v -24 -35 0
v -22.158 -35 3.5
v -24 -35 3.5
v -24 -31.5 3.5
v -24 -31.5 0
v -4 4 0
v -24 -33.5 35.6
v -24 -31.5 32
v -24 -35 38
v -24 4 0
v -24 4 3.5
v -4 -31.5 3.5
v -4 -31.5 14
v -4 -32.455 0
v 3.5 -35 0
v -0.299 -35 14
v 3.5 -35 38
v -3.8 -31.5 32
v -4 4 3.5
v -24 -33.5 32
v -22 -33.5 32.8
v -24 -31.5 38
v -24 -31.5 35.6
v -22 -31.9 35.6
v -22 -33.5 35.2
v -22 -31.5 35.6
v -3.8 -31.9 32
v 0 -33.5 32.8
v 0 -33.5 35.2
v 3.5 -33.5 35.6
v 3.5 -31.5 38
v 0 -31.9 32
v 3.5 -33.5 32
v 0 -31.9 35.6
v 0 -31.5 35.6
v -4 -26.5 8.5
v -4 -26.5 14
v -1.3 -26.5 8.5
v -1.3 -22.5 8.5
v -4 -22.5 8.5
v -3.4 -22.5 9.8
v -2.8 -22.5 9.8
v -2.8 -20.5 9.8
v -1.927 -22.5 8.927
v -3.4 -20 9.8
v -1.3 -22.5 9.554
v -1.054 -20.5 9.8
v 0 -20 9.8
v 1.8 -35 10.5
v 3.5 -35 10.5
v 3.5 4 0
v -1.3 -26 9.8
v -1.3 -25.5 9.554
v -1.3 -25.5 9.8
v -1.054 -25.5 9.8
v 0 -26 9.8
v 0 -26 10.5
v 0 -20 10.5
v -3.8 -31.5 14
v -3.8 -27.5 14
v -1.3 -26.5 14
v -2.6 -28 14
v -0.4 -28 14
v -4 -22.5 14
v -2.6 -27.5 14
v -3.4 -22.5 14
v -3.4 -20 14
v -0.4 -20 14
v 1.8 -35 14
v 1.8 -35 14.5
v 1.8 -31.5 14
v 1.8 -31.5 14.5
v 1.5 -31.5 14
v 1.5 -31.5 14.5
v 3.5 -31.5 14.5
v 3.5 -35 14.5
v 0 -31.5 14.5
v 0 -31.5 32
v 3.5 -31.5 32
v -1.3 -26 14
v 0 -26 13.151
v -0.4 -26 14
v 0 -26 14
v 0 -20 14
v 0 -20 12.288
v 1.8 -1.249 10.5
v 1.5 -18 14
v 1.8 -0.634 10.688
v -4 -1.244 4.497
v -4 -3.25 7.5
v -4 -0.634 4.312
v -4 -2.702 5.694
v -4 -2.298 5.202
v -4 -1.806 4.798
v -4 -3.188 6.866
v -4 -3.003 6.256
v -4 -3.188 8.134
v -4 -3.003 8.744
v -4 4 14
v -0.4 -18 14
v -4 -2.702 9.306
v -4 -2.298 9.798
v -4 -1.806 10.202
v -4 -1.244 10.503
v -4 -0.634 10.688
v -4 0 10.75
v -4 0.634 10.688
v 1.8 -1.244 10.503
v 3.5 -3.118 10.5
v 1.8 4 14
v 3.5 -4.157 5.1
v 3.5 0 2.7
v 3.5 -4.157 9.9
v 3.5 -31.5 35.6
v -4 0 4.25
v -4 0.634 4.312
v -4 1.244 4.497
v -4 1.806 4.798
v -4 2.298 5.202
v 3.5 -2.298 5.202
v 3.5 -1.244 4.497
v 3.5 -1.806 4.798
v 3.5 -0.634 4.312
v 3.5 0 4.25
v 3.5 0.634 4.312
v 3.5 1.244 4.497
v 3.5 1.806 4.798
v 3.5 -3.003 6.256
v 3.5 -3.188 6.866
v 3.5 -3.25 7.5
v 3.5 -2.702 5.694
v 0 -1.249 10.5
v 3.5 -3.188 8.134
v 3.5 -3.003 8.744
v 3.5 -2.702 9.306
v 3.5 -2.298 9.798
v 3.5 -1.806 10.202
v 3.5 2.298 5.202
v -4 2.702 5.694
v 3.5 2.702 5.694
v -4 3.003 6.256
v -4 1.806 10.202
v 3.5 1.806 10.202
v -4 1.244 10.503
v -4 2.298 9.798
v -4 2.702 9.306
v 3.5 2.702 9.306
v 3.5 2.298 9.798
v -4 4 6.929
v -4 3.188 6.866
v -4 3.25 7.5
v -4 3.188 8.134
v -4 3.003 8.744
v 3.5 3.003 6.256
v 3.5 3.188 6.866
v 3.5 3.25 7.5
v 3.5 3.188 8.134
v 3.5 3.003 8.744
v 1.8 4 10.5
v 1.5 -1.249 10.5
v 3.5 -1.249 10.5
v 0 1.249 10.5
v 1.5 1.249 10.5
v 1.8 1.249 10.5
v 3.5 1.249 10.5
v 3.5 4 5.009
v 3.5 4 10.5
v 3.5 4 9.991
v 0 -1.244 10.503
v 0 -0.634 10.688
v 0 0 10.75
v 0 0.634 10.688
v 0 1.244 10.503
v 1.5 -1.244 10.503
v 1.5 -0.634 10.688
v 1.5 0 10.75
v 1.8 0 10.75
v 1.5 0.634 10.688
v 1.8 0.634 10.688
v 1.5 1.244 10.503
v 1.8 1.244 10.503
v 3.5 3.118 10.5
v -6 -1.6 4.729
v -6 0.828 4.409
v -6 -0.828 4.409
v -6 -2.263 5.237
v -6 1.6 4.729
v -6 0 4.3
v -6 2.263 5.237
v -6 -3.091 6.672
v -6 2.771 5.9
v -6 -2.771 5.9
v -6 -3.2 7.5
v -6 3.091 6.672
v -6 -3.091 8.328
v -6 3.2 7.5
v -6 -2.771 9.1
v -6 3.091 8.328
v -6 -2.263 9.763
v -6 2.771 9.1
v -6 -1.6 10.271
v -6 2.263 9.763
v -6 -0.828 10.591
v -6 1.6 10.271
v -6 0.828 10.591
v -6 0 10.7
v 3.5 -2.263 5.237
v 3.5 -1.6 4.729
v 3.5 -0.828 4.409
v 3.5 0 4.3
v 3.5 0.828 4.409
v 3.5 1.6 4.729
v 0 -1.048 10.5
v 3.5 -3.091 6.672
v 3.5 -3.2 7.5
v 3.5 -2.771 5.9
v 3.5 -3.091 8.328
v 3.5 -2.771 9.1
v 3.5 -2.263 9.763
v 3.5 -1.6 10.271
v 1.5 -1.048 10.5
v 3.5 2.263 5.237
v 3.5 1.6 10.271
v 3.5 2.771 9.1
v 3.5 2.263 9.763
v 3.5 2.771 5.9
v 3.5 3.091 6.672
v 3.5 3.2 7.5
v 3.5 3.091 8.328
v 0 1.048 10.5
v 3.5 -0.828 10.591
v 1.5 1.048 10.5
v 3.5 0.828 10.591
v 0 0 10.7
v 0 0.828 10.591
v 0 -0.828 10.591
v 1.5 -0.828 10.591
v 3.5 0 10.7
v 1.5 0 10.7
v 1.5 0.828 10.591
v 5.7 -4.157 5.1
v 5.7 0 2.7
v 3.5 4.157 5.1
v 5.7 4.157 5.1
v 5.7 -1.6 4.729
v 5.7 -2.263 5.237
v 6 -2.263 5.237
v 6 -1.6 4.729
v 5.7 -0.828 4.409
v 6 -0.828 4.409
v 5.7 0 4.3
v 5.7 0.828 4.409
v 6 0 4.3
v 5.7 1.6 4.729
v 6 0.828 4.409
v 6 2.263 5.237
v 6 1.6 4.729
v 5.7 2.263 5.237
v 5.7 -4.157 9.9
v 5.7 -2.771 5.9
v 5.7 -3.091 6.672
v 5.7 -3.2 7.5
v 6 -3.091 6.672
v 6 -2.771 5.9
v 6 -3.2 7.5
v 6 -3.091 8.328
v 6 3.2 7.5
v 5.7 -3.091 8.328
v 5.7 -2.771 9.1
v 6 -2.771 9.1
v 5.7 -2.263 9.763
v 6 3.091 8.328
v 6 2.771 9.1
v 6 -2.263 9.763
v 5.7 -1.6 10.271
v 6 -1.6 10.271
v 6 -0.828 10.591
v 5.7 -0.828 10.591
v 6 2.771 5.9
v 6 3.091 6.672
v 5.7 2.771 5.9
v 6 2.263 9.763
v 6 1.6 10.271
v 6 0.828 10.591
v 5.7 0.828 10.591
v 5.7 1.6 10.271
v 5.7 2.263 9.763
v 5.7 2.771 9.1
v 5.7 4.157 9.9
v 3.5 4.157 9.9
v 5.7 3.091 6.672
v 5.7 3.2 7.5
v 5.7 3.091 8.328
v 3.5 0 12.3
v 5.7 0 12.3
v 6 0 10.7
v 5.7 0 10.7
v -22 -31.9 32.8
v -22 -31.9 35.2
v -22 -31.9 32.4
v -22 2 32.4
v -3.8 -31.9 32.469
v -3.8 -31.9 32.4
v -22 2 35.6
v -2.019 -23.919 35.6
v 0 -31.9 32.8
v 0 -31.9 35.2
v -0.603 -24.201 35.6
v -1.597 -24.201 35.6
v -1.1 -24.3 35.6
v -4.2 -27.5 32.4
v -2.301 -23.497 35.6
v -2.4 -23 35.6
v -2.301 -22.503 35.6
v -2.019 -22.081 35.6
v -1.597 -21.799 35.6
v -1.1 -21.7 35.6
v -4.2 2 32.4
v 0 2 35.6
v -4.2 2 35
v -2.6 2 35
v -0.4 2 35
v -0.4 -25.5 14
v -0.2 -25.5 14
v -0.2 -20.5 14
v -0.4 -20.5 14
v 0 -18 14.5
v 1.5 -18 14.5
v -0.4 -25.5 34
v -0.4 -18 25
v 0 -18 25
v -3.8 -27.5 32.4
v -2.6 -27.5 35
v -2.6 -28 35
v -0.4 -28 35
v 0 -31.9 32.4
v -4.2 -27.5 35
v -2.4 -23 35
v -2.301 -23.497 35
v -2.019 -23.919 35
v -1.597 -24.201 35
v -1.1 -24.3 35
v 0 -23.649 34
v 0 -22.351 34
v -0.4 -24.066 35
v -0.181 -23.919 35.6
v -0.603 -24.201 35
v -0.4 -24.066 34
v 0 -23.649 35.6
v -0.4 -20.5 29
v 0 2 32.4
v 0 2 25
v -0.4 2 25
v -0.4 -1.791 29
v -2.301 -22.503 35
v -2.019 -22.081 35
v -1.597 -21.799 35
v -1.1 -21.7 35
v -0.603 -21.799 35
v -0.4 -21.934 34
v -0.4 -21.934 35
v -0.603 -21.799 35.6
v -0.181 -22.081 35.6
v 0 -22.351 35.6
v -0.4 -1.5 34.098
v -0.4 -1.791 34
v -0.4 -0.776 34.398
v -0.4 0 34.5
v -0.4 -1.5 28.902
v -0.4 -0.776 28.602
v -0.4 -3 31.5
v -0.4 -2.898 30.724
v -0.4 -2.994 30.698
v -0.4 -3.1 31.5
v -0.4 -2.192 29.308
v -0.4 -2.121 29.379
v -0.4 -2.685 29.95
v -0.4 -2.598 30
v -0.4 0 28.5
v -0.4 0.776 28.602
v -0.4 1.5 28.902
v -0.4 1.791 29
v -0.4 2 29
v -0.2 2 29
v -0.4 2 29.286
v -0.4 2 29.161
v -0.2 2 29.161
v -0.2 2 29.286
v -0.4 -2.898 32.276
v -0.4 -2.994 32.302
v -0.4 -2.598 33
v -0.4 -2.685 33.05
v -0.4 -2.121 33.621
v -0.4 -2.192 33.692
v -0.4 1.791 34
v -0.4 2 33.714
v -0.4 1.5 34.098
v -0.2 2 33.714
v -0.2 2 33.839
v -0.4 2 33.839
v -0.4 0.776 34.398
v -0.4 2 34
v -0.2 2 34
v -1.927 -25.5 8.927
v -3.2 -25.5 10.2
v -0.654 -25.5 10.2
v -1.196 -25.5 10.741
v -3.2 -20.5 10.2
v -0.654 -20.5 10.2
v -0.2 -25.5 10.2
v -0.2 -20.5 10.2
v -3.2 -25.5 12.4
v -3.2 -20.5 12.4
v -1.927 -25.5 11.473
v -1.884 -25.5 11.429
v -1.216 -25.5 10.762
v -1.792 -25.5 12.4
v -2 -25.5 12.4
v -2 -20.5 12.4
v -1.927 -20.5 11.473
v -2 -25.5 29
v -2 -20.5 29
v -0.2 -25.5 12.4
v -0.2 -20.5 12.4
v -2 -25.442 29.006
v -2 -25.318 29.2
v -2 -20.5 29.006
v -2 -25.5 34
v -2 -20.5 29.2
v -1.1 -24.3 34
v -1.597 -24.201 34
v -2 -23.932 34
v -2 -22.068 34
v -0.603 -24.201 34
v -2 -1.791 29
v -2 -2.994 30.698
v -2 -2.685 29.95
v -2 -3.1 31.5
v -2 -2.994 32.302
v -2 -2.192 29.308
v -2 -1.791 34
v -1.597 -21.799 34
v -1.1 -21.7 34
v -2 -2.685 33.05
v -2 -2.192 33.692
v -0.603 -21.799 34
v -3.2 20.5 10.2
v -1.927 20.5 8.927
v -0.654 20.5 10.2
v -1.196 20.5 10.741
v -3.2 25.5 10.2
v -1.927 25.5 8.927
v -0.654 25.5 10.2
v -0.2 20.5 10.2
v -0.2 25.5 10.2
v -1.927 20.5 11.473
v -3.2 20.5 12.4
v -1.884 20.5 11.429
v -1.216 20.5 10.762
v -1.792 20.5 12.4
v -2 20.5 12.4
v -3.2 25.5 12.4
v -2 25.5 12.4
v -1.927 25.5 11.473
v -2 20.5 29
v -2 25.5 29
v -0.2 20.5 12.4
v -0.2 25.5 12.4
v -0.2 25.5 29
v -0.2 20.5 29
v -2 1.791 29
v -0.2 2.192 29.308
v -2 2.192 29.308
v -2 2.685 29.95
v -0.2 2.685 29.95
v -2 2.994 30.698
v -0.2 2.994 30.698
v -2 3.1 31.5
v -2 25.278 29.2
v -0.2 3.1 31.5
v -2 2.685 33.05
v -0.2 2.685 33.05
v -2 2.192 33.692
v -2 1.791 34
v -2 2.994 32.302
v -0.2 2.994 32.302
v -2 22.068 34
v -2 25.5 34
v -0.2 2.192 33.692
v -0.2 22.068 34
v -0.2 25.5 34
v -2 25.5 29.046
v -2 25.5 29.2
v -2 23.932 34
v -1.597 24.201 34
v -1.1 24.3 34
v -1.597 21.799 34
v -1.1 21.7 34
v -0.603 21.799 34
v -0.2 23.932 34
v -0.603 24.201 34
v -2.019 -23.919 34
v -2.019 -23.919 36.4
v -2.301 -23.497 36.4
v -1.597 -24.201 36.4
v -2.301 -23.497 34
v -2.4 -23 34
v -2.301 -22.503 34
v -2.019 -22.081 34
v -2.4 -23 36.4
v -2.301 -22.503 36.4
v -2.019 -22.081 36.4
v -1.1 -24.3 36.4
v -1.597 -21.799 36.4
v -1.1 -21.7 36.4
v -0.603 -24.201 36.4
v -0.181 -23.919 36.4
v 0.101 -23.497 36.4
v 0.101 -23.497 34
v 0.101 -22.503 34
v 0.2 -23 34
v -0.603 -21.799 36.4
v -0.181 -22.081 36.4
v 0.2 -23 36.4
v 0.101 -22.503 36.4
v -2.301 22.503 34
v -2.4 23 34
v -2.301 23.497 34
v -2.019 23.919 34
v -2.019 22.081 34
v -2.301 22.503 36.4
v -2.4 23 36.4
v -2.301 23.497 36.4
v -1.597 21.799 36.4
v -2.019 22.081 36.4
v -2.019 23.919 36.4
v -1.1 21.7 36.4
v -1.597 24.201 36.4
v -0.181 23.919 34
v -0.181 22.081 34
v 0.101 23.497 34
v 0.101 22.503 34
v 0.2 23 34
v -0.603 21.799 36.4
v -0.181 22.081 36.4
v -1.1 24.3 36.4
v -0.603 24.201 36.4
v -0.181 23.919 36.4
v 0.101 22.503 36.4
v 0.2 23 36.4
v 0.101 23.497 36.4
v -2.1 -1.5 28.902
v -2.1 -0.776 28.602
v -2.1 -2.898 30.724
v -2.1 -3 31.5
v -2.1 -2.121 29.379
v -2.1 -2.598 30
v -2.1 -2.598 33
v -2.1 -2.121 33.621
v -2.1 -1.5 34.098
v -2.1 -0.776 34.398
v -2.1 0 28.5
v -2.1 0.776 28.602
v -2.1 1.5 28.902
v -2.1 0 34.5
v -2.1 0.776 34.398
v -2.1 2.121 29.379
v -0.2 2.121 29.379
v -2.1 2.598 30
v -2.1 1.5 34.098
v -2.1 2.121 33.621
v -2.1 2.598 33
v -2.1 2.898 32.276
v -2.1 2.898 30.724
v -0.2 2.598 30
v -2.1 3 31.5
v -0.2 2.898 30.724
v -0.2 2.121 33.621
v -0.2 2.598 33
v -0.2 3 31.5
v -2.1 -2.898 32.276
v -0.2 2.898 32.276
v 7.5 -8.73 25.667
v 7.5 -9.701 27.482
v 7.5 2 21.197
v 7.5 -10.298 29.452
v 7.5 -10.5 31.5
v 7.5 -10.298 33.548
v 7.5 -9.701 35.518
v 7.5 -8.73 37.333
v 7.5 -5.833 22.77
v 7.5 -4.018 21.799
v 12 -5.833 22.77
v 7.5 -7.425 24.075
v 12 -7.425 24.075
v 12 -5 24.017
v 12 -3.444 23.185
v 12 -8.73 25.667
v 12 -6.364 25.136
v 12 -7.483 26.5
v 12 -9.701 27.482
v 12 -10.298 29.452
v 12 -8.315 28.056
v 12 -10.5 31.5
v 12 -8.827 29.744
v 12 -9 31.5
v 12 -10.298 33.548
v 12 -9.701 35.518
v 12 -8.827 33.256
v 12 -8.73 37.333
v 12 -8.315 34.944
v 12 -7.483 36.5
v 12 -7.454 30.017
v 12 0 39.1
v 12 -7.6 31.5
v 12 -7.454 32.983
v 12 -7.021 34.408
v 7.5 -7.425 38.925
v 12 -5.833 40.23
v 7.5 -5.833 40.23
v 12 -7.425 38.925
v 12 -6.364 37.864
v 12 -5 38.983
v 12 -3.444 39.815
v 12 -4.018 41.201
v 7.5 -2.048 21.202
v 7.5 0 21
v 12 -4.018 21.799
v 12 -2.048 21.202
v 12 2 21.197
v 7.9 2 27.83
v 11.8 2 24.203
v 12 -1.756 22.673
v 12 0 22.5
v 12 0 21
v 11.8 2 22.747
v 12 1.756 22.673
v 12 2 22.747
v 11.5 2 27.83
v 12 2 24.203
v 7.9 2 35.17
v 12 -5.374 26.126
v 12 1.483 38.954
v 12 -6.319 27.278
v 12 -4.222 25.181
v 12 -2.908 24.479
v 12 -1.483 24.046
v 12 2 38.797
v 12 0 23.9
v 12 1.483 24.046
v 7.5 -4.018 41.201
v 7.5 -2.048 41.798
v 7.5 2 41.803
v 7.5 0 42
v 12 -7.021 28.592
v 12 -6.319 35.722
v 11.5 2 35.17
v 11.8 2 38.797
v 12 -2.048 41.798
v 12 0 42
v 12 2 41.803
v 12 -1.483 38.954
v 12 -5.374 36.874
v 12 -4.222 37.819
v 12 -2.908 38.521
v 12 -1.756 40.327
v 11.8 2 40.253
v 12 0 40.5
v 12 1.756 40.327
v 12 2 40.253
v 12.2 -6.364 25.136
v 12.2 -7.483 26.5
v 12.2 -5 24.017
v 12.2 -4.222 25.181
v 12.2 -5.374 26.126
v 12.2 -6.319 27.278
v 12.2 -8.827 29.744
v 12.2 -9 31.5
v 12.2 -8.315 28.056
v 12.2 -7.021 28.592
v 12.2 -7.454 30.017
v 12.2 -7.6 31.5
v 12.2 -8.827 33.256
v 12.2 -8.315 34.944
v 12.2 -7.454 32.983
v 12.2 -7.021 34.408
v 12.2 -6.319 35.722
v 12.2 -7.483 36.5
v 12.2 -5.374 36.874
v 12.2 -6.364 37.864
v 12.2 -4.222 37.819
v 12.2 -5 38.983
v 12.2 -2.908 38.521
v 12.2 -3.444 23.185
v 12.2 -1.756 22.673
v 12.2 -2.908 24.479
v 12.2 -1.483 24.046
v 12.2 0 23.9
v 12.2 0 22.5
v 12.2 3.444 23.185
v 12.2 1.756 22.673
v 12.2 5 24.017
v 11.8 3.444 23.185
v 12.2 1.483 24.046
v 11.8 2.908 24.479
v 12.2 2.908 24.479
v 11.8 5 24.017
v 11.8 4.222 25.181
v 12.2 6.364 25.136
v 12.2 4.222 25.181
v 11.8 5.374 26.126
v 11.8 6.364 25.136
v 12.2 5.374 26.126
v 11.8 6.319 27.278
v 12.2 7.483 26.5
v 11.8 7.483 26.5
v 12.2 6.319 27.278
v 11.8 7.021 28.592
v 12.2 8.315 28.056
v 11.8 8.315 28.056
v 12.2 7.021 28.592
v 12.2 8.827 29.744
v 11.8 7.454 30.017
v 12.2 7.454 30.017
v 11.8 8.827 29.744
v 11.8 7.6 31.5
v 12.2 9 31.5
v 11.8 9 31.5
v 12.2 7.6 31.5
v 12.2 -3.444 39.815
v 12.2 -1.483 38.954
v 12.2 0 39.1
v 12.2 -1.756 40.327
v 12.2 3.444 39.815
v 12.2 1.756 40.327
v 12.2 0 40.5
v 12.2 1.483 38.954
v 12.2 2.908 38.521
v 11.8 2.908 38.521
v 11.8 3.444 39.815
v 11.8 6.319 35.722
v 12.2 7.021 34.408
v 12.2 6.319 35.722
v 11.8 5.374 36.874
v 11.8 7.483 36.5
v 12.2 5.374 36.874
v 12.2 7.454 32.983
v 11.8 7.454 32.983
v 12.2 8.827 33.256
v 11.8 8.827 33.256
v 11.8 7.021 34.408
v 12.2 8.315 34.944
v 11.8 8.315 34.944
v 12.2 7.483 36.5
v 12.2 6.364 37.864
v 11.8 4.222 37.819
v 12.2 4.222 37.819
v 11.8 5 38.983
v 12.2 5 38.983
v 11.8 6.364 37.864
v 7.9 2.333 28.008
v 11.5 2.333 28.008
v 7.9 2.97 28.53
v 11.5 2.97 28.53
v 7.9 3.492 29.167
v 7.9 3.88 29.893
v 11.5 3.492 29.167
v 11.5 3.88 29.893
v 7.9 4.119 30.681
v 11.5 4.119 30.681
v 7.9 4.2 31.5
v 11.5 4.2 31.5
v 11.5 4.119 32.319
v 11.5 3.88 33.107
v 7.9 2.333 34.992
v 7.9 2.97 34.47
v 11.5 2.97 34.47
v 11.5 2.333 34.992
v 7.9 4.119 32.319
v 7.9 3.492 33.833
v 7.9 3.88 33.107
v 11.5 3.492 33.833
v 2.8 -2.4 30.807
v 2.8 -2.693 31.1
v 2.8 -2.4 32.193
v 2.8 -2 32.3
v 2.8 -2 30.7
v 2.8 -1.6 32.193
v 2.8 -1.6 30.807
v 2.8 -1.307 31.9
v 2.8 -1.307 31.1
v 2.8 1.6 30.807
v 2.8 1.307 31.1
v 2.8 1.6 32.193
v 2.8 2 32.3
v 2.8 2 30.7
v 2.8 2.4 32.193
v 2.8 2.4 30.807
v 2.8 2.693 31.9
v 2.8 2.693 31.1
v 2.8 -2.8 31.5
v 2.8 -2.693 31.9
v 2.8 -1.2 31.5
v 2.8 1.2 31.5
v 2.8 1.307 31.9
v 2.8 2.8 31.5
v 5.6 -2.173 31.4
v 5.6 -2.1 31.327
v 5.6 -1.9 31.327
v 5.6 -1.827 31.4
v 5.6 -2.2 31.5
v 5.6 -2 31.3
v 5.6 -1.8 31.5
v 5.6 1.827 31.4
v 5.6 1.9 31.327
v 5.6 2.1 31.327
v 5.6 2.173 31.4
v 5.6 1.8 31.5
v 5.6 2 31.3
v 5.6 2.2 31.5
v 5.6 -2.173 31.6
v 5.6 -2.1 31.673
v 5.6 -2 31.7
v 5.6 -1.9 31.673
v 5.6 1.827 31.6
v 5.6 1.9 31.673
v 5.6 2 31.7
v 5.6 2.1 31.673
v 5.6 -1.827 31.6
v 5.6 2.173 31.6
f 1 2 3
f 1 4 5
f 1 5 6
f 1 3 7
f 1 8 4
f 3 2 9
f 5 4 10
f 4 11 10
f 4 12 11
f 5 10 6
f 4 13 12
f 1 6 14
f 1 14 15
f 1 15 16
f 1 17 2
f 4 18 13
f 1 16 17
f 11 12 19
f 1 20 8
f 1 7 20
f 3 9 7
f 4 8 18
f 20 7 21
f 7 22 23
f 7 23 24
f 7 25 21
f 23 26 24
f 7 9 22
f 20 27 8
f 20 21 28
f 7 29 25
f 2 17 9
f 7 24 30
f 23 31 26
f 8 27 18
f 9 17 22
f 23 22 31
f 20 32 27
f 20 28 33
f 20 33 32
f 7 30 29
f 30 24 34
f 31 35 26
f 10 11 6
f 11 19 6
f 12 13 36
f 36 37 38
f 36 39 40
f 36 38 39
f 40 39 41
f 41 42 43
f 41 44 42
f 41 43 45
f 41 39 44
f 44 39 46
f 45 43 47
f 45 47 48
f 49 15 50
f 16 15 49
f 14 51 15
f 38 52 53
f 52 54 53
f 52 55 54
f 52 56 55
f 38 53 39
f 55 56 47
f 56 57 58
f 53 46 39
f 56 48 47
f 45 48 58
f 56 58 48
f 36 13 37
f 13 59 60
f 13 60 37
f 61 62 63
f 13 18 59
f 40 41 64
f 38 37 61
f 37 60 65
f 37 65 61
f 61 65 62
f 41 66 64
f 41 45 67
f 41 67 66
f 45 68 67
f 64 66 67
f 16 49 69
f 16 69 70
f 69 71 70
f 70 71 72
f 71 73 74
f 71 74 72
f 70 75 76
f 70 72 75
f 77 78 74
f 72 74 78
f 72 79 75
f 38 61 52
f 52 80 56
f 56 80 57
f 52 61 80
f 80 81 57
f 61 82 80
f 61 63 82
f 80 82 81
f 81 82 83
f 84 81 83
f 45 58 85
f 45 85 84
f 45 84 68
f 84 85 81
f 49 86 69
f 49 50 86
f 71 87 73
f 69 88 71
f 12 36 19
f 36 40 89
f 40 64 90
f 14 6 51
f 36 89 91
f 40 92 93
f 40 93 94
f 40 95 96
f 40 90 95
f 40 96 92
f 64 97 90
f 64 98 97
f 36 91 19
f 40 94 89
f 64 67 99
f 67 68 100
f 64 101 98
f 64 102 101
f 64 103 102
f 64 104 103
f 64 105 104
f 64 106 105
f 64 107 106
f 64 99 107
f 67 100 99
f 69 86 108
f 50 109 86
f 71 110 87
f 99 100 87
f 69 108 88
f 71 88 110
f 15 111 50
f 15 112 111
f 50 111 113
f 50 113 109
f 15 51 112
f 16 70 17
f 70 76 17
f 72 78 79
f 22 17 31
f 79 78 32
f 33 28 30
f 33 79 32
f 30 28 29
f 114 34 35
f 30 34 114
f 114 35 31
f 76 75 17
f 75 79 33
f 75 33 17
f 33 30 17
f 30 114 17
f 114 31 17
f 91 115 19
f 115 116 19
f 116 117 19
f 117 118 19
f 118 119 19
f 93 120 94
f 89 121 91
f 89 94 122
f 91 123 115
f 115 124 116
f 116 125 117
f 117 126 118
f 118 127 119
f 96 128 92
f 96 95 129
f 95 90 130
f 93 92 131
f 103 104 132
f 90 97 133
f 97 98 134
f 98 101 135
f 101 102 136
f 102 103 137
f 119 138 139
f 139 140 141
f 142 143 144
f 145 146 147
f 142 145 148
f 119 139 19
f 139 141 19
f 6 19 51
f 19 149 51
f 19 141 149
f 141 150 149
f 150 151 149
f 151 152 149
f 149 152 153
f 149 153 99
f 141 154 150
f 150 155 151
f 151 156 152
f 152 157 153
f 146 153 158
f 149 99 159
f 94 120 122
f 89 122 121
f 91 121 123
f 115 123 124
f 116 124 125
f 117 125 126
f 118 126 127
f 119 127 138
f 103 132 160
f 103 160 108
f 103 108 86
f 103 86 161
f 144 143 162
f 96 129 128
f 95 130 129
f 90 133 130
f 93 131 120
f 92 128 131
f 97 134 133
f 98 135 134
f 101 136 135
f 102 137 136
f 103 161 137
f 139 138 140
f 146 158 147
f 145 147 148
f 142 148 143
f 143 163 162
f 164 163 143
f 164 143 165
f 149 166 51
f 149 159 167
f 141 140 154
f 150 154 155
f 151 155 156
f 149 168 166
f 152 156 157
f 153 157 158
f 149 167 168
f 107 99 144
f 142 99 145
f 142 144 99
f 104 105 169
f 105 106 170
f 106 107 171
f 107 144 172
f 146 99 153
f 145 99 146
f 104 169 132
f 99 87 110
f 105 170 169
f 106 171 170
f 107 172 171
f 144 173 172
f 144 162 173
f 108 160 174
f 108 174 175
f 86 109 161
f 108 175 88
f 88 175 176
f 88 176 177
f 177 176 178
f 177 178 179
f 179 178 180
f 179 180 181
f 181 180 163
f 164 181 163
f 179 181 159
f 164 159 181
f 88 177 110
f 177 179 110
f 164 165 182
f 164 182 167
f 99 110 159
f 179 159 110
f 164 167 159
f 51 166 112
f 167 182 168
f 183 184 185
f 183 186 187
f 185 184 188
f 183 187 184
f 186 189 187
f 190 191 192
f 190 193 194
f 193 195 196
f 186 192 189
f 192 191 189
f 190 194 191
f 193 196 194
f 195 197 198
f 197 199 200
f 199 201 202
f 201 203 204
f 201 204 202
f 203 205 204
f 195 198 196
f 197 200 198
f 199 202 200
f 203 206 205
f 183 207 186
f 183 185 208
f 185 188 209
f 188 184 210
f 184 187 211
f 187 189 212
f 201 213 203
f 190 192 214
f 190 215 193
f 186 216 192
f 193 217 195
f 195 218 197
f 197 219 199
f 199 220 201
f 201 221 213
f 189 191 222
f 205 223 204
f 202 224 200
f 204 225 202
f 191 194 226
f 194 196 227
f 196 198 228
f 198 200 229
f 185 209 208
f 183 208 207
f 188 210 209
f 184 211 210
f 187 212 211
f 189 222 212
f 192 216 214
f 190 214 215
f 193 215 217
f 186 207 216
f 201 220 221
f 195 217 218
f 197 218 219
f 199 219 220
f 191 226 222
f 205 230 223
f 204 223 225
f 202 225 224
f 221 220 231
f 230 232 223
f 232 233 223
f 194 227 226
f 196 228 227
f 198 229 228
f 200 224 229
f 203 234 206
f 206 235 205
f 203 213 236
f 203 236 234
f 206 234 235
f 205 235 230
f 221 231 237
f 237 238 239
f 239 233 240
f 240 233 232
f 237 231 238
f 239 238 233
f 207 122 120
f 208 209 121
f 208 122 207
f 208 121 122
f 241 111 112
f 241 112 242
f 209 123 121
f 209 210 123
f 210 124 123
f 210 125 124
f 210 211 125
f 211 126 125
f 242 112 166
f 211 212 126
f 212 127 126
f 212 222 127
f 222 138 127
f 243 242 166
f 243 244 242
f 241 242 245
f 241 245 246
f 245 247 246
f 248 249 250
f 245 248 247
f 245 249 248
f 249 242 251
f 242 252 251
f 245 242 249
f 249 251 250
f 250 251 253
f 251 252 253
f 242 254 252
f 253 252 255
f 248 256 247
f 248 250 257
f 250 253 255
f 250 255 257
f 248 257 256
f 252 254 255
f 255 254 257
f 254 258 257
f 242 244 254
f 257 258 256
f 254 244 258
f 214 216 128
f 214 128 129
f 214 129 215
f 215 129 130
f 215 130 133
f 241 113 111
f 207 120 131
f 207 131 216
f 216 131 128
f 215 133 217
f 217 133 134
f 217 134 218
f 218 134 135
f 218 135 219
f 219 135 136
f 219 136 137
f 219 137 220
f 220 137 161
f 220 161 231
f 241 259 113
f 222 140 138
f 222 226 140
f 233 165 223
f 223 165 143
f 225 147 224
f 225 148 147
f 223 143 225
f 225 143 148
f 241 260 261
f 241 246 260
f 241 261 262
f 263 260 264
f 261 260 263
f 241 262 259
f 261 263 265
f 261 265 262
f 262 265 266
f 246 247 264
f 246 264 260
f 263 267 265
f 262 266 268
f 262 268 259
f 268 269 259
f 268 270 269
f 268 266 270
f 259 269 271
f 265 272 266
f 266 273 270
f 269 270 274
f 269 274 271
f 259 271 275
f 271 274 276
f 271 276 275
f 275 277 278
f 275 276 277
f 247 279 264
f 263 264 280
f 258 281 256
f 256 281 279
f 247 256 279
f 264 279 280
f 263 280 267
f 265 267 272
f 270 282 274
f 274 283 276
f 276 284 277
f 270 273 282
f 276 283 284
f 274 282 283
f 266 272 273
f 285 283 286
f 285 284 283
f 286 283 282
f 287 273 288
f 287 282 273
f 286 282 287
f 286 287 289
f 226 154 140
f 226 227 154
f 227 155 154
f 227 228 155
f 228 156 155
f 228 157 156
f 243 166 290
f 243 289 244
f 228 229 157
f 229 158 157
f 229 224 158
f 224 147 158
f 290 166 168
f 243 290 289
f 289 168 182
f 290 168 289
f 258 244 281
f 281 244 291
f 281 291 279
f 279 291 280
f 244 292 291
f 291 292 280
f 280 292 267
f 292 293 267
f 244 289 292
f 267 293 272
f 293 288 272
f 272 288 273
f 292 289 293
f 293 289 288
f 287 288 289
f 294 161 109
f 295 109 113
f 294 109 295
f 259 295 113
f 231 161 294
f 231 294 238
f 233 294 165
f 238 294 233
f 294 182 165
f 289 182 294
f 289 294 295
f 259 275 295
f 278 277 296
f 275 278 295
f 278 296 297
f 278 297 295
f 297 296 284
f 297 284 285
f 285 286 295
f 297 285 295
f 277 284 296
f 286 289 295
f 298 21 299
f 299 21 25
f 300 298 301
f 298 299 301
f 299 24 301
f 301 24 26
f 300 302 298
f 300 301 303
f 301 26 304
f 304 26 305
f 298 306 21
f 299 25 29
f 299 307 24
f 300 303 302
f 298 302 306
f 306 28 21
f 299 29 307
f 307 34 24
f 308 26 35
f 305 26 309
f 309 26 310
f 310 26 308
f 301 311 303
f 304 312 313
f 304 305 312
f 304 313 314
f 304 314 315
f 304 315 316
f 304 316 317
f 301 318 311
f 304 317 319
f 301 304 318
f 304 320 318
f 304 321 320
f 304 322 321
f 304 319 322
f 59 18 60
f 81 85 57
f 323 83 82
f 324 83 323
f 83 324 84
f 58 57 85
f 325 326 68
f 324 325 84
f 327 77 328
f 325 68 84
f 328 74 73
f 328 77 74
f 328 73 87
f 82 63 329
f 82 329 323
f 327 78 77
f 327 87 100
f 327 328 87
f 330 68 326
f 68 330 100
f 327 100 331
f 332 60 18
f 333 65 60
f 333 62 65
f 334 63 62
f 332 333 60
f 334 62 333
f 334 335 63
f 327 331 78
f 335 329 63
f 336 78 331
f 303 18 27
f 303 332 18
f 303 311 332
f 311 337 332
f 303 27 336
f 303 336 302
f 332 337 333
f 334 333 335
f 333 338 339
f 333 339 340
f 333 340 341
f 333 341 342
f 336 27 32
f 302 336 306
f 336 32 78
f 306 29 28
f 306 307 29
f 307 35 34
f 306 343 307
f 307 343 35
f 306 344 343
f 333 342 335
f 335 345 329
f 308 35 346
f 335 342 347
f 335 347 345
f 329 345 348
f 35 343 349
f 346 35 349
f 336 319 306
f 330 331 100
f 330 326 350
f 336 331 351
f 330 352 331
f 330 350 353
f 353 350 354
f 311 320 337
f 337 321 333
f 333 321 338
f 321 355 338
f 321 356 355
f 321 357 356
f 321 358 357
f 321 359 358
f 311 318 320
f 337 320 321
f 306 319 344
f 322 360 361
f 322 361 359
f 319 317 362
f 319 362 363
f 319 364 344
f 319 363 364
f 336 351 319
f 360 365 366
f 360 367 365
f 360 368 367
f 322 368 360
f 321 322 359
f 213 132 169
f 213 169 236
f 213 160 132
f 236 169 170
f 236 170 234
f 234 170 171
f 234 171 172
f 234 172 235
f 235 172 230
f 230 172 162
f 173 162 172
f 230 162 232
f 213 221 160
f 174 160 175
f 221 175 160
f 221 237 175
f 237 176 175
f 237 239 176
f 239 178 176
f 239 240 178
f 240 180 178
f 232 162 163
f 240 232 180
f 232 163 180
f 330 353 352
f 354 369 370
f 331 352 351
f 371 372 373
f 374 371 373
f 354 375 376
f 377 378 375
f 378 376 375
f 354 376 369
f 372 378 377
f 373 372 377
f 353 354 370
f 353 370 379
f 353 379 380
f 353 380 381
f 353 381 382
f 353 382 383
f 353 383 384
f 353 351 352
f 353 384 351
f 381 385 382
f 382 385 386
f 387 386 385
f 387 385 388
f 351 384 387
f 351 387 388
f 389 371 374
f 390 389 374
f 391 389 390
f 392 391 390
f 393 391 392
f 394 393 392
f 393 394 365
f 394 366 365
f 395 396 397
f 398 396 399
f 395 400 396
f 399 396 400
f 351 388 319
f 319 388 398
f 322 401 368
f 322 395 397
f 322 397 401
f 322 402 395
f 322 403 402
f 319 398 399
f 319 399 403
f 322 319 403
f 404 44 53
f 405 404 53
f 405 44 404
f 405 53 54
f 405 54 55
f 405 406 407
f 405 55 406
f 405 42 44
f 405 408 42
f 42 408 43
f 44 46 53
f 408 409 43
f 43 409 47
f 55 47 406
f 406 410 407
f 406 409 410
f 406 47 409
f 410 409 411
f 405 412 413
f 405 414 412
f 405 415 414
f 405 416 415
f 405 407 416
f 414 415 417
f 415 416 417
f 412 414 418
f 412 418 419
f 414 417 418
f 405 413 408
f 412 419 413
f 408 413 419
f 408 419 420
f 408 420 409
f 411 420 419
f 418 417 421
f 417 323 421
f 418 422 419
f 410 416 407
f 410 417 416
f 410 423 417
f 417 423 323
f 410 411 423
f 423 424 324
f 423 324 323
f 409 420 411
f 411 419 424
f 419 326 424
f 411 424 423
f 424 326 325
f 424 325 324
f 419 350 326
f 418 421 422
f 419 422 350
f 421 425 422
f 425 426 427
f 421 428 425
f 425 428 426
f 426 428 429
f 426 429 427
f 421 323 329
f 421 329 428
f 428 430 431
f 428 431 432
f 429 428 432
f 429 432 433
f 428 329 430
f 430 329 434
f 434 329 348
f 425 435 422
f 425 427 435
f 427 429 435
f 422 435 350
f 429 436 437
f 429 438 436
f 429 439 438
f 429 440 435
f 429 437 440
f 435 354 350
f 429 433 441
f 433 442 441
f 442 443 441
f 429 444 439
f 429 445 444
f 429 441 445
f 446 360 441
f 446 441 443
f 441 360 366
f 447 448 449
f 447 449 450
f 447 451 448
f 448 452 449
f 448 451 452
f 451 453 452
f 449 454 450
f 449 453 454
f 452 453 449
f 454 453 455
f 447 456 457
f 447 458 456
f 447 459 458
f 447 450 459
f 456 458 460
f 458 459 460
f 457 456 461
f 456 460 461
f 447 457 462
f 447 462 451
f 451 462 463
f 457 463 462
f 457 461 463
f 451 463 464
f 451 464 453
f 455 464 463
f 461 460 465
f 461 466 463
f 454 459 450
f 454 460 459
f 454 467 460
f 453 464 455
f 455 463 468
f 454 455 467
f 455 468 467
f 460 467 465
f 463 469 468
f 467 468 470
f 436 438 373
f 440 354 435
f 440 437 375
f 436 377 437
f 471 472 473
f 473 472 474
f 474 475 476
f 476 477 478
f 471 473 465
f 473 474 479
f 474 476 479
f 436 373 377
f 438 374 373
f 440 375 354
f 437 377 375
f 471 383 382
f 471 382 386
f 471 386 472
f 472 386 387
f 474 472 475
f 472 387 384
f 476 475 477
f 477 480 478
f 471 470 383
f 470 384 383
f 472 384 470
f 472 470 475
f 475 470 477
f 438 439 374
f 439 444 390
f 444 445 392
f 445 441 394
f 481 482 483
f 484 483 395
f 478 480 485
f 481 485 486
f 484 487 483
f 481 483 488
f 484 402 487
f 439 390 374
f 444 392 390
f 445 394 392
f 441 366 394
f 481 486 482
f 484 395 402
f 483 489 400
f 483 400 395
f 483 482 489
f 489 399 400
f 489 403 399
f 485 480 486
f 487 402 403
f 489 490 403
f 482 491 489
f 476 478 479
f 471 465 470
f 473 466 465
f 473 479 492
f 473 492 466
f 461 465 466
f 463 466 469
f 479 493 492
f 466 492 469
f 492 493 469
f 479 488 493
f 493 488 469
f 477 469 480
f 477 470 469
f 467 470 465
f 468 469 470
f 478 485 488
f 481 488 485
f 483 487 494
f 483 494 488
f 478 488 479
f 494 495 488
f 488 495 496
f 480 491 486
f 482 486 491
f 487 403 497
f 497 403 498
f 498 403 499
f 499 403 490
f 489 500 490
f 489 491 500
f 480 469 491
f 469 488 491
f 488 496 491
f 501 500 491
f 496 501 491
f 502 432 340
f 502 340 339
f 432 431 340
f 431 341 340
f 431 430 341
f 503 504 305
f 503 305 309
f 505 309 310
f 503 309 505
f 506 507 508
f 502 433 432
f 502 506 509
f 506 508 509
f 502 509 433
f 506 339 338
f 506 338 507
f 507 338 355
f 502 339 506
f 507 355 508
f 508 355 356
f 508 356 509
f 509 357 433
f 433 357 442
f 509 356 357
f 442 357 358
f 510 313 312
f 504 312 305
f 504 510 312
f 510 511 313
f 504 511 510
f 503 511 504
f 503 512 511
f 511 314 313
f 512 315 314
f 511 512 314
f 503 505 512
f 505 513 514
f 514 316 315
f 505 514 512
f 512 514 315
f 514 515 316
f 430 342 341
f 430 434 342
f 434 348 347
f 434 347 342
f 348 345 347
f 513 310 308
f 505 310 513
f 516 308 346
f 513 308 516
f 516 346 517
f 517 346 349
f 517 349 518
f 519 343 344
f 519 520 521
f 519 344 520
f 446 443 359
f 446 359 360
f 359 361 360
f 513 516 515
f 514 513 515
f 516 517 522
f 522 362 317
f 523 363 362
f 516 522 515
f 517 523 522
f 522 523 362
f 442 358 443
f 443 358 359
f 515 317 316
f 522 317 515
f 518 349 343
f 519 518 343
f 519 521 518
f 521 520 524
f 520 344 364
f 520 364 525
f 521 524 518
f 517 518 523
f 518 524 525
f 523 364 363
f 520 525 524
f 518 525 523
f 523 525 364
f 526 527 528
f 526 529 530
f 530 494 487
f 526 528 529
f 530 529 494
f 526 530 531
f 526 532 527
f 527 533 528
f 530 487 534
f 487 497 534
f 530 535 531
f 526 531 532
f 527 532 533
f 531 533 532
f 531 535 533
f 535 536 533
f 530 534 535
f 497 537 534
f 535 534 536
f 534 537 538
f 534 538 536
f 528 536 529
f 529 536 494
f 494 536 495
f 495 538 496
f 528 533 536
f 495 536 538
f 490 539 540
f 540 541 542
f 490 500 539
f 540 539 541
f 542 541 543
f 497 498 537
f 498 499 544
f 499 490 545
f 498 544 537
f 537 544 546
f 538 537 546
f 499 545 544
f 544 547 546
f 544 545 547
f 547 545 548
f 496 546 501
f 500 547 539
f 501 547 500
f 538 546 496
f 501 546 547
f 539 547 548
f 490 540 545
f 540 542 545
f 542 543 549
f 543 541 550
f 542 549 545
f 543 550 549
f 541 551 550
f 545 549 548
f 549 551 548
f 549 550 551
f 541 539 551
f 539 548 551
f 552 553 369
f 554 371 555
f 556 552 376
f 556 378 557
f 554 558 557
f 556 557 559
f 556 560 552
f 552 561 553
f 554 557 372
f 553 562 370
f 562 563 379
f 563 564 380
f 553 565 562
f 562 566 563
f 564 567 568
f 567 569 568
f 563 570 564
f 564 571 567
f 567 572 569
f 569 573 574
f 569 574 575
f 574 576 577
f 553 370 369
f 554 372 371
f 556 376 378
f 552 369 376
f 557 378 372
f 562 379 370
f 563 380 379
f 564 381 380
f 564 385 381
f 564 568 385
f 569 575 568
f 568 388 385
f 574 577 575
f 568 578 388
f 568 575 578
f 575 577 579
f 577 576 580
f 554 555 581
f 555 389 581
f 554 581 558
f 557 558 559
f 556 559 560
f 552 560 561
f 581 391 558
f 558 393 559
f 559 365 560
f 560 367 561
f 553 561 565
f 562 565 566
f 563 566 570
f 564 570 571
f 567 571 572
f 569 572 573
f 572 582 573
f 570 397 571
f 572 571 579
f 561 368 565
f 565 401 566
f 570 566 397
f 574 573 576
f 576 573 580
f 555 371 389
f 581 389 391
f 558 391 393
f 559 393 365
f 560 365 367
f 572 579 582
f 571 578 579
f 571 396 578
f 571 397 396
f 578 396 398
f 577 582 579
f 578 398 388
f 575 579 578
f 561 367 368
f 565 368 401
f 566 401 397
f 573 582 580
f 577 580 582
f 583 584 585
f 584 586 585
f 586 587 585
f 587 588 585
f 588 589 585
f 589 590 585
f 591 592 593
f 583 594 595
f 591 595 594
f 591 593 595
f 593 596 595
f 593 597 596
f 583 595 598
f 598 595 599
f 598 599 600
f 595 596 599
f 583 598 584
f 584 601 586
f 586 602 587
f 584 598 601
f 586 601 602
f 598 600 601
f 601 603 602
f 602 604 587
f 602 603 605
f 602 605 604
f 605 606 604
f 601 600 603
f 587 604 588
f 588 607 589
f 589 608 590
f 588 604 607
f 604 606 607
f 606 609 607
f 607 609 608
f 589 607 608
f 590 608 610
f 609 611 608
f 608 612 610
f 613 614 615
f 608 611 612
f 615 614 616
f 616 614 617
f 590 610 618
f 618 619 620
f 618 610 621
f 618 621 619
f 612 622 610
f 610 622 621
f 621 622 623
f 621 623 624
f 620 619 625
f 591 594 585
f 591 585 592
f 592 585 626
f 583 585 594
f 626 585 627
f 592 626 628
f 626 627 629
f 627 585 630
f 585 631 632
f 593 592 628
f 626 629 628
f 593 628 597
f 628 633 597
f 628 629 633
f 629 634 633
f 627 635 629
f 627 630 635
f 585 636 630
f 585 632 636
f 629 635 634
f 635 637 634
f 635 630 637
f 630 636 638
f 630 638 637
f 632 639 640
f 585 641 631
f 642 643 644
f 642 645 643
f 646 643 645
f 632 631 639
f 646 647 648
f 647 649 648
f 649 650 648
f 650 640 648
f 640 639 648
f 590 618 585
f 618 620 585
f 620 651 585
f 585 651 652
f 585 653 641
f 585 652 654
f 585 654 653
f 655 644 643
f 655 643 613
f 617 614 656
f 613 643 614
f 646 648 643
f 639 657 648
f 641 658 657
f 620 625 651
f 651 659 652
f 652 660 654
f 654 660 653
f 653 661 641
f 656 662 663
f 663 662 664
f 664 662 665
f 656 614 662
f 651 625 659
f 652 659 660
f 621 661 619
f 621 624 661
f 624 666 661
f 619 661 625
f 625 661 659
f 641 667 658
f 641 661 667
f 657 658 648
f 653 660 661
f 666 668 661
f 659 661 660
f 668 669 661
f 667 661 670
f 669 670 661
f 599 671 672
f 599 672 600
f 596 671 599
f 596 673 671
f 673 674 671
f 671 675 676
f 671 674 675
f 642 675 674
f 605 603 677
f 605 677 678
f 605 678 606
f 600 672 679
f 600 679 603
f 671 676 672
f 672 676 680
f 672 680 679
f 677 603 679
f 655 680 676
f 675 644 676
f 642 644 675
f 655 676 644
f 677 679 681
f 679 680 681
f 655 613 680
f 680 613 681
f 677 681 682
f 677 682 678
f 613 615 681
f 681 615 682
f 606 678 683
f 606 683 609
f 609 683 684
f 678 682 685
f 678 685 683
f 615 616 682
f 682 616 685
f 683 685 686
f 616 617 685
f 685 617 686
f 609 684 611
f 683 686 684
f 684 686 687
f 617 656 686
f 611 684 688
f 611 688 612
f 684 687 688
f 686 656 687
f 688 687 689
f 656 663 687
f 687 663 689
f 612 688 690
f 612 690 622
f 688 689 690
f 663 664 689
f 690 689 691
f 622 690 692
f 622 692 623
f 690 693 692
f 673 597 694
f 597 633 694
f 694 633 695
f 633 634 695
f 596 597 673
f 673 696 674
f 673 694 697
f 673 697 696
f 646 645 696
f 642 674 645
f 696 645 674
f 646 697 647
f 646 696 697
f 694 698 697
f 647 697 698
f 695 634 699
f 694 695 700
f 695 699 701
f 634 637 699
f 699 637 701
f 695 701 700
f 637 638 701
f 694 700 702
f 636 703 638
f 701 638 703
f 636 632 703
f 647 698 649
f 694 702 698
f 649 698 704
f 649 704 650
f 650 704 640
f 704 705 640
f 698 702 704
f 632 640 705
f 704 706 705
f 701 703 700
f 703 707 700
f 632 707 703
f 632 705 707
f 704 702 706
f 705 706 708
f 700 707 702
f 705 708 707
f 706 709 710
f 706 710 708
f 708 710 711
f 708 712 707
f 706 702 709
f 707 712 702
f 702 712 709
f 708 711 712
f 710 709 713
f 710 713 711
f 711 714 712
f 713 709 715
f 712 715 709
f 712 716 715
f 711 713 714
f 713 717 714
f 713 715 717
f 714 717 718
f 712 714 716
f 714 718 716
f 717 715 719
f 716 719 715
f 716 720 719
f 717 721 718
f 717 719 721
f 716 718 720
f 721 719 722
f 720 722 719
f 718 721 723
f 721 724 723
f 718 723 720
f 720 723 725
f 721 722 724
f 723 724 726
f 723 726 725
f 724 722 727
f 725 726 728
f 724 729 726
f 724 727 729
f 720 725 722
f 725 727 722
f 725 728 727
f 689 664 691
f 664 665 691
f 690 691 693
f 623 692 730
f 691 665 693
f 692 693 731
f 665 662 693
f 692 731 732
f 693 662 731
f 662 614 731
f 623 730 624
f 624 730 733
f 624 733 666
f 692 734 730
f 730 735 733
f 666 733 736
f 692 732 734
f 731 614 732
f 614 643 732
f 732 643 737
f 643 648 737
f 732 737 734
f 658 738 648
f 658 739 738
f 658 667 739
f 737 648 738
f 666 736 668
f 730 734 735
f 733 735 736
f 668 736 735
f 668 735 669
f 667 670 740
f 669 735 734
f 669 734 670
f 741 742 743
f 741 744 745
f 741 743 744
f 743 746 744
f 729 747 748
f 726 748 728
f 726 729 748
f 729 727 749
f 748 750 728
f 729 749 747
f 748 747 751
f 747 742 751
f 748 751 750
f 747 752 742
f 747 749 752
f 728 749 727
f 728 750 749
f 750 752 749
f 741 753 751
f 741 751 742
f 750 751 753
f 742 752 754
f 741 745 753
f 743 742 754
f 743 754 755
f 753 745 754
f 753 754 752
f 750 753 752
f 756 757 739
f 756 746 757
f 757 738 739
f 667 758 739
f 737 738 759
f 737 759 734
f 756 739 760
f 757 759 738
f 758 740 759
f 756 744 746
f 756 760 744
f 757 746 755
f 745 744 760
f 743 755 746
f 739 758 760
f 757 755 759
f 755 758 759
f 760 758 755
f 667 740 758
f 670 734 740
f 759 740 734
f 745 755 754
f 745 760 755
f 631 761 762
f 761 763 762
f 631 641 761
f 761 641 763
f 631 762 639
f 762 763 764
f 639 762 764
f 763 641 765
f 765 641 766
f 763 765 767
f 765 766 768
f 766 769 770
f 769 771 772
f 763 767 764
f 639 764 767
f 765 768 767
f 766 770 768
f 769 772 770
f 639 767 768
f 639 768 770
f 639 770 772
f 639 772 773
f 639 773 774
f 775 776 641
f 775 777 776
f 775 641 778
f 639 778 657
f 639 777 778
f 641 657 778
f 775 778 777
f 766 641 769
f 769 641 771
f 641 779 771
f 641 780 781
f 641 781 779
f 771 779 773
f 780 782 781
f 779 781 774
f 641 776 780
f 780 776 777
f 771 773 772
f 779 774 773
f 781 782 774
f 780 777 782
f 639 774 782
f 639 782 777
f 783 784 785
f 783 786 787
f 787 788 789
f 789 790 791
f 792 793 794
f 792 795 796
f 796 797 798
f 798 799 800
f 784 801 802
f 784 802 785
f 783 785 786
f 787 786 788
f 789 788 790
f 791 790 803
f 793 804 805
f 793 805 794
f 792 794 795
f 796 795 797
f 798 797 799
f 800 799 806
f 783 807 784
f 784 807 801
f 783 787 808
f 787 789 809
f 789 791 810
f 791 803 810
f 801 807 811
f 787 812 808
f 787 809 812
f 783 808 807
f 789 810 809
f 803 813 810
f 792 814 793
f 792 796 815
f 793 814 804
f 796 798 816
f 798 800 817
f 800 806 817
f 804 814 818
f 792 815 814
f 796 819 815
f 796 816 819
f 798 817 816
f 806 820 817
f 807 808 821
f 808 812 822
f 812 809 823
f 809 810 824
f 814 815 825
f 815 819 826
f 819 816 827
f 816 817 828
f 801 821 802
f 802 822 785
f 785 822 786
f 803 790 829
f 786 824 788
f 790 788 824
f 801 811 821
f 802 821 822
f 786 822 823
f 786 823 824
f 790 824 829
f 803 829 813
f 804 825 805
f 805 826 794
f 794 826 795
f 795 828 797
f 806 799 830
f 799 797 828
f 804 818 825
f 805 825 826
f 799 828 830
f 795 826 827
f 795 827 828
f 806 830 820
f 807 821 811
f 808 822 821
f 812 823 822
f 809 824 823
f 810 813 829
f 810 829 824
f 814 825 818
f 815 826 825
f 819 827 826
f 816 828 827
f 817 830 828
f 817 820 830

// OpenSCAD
// =============================================================================
// OpenMotorBridge - Satellite Pod: 100% Non-Metallic U-Yoke Magnetic Lock
// =============================================================================
// File: hardware/cad/scad/02_pod_base/parts/016_fob_magnetic_lock_mechanism.scad
// Description: High-precision cross-section of the 100% RF-TRANSPARENT PA12
//              U-Yoke magnetic lock at the rear Heckwand.
//
// Key Security & RF Concept:
// - Non-metallic PA12 portal bracket prevents RF shielding / attenuation
//   for 868 MHz LoRa, 2.4 GHz BLE, and 5.8 GHz Mesh radios.
// - An embedded N52 coin magnet (Ø 6 x 2 mm) at the center of the arch
//   lifts both corner deadbolt legs simultaneously against return springs.
// - Open central arch leaves 100% free clearance for the fixed SMA antenna port.
// - Slam-shut: 45° lead-in chamfers on legs snap automatically into the
//   lower sill sockets when sliding shut.
// =============================================================================

$fn = 32;

module rear_u_yoke_magnetic_lock_detail(unlocked = false, cutaway = true) {
    u_lift = unlocked ? 3.2 : 0.0;

    // 1. Fixed Lower Tub Rear Wall Section (Dark Anthracite PA12, Z = 0..14 mm)
    color([0.28, 0.30, 0.34, 0.92]) {
        difference() {
            union() {
                // Lower fixed rear wall block (Z = 0..14 mm)
                translate([-4.0, -35.0, 0])
                    cube([7.5, 70.0, 14.0], center=false);
                // Short floor stub (X = -24..-4 mm, Z = 0..3.5 mm) to show tub floor context
                translate([-24.0, -35.0, 0])
                    cube([20.0, 70.0, 3.5], center=false);
                // Left side wall stub (Y = -35..-31.5 mm, Z = 0..38 mm) with C-groove
                difference() {
                    translate([-24.0, -35.0, 0])
                        cube([27.5, 3.5, 38.0], center=false);
                    translate([-25.0, -33.5, 32.0])
                        cube([30.0, 2.5, 3.6], center=false);
                }
            }

            // Center SMA Antenna Passthrough (Ø 6.5 mm at Z = 7.5 mm)
            translate([-5.0, 0, 7.5])
                rotate([0, 90, 0])
                    cylinder(r=3.25, h=10.0, center=false, $fn=32);

            // Left Claw Catch Pocket (at Y = -26.0..-20.0 mm, Z = 9.8..14.2 mm)
            translate([-3.4, -26.0, 9.8])
                cube([3.4, 6.0, 4.5], center=false);

            // Right Claw Catch Pocket (at Y = +20.0..+26.0 mm, Z = 9.8..14.2 mm)
            translate([-3.4, 20.0, 9.8])
                cube([3.4, 6.0, 4.5], center=false);

            // Exterior Rebate Step for L-Lid Drip Apron (Tropfnase)
            translate([1.8, -36.0, 10.5])
                cube([3.0, 72.0, 4.0], center=false);

            // Cutaway right half (Y > 4 mm) AND front face of left catch pocket (Y = -26..-22.5 mm)
            // so the downward-gripping Plastikkralle inside the low rear wall is 100% visible!
            if (cutaway) {
                translate([-26.0, 4.0, -2.0])
                    cube([35.0, 40.0, 45.0], center=false);
                translate([-4.5, -26.5, 8.5])
                    cube([3.2, 4.0, 6.5], center=false);
            }
        }
    }

    // 2. Fixed SMA Antenna Bulkhead Connector in Lower Rear Wall (Gold / Brass at Z = 7.5 mm)
    color("gold") {
        translate([-6.0, 0, 7.5])
            rotate([0, 90, 0]) {
                cylinder(r=3.2, h=12.0, center=false, $fn=24);
                // Hex nut & washer on exterior
                translate([0, 0, 9.5])
                    cylinder(r=4.8, h=2.2, center=false, $fn=6);
            }
    }

    // 3. Upper L-Slide Lid & Vertical Heckwand Section (Charcoal PA12, Z = 14..38 mm)
    color([0.20, 0.22, 0.25, 0.88]) {
        difference() {
            union() {
                // Horizontal Top Lid Plate (L-Profile Horizontal Leg, X = -22..0 mm, Z = 32.4..35.6 mm)
                translate([-22.0, -31.9, 32.4])
                    cube([22.0, 63.8, 3.2], center=false);
                // Left Lateral Tongue in C-Groove
                translate([-22.0, -33.5, 32.8])
                    cube([22.0, 1.6, 2.4], center=false);

                // Upper Vertical Heckwand (L-Profile Vertical Leg, X = -3.8..0 mm, Z = 14.0..35.6 mm)
                translate([-3.8, -31.9, 14.0])
                    cube([3.8, 63.8, 21.6], center=false);

                // External Drip Apron (Tropfnase) overlapping lower rear wall down to Z = 10.5 mm
                translate([0.0, -31.9, 10.5])
                    cube([1.5, 63.8, 4.0], center=false);
            }

            // Internal Guide Cavity for U-Yoke Bracket
            translate([-2.6, -28.0, 12.0])
                cube([2.2, 56.0, 23.0], center=false);

            // Central Open Arch (Torbogen) clearing fixed SMA port completely
            translate([-4.5, -18.0, 12.0])
                cube([6.0, 36.0, 13.0], center=false);

            // Cutaway right half (Y > 2 mm) AND inner wall over left U-Yoke arm so the cyan U-Yoke & Plastikkralle are exposed!
            if (cutaway) {
                translate([-25.0, 2.0, 9.0])
                    cube([30.0, 35.0, 32.0], center=false);
                translate([-4.2, -27.5, 10.0])
                    cube([2.4, 29.5, 25.0], center=false);
            }
        }
    }

    // 4. Non-Metallic PA12 U-Yoke Claw Latch ("Plastikkrallen", Bright Cyan — uncut on left & center!)
    translate([0, 0, u_lift]) {
        // PA12 Body
        color([0.15, 0.75, 0.85, 1.0]) {
            difference() {
                union() {
                    // Top Horizontal Cross-Bridge (at Z = 29.0..34.0 mm)
                    translate([-2.0, -25.5, 29.0])
                        cube([1.8, 51.0, 5.0], center=false);

                    // Left Corner Plastic Claw Leg ("Plastikkralle" gripping down into low rear wall)
                    translate([-2.0, -25.5, 10.2]) {
                        cube([1.8, 5.0, 19.0], center=false);
                        // Hooked claw barb ("Kralle") gripping behind the low rear wall catch lip
                        translate([-1.2, 0, 0])
                            cube([3.0, 5.0, 2.2], center=false);
                        // 45° Lead-in ramp on forward (-X) lower tip for horizontal slam-shut
                        translate([-1.2, 0, 0])
                            rotate([0, 45, 0])
                                cube([1.8, 5.0, 1.8], center=false);
                    }

                    // Right Corner Plastic Claw Leg ("Plastikkralle" gripping down into low rear wall)
                    translate([-2.0, 20.5, 10.2]) {
                        cube([1.8, 5.0, 19.0], center=false);
                        translate([-1.2, 0, 0])
                            cube([3.0, 5.0, 2.2], center=false);
                        translate([-1.2, 0, 0])
                            rotate([0, 45, 0])
                                cube([1.8, 5.0, 1.8], center=false);
                    }
                }

                // Magnet Coin Pocket in Bridge Center
                translate([-2.2, 0, 31.5])
                    rotate([0, 90, 0])
                        cylinder(r=3.1, h=2.5, center=false, $fn=24);
            }
        }

        // Central N52 Neodymium Coin Magnet (Silver, Ø 6.0 x 2.0 mm)
        color("silver") {
            translate([-2.1, 0, 31.5])
                rotate([0, 90, 0])
                    cylinder(r=3.0, h=1.9, center=false, $fn=24);
        }

        // Dual Miniature Return Springs (Gold)
        color("gold") {
            translate([-1.1, -23.0, 34.0])
                cylinder(r=1.3, h=2.4 - u_lift * 0.5, center=false, $fn=16);
            translate([-1.1, 23.0, 34.0])
                cylinder(r=1.3, h=2.4 - u_lift * 0.5, center=false, $fn=16);
        }
    }

    // 5. Smart-Keyfob (PCBA 07) Hovering Against Rear Target (Approaching to Unlock)
    translate([7.5, 0, 31.5]) {
        rotate([0, 90, 0]) {
            // Keyfob Housing (cut in half for visibility)
            color([0.14, 0.15, 0.18, 0.92])
                difference() {
                    cylinder(r=10.5, h=4.5, center=false, $fn=32);
                    translate([-12.0, 2.0, -1.0])
                        cube([24.0, 12.0, 7.0], center=false);
                }
            // N52 Magnet Core
            color("silver")
                translate([0, 0, 0.4])
                    cylinder(r=4.2, h=3.6, center=false, $fn=32);
            // Green Proximity Ring
            color([0.2, 0.9, 0.3])
                translate([0, 0, 4.3])
                    difference() {
                        cylinder(r=9.0, h=0.4, center=false, $fn=32);
                        cylinder(r=7.6, h=0.5, center=false, $fn=32);
                    }
        }
    }

    // Magnetic Attraction Flux Lines (Cyan Arrows)
    color([0.0, 0.85, 1.0, 0.9]) {
        for (offset_y = [-2.0, 2.0]) {
            translate([4.2, offset_y, 31.5])
                rotate([0, 90, 0])
                    cylinder(r1=0.8, r2=0.2, h=2.8, center=true, $fn=12);
        }
    }
}

// Standalone execution preview (with cross section preserving all component colors)
rear_u_yoke_magnetic_lock_detail(unlocked = false, cutaway = true);
